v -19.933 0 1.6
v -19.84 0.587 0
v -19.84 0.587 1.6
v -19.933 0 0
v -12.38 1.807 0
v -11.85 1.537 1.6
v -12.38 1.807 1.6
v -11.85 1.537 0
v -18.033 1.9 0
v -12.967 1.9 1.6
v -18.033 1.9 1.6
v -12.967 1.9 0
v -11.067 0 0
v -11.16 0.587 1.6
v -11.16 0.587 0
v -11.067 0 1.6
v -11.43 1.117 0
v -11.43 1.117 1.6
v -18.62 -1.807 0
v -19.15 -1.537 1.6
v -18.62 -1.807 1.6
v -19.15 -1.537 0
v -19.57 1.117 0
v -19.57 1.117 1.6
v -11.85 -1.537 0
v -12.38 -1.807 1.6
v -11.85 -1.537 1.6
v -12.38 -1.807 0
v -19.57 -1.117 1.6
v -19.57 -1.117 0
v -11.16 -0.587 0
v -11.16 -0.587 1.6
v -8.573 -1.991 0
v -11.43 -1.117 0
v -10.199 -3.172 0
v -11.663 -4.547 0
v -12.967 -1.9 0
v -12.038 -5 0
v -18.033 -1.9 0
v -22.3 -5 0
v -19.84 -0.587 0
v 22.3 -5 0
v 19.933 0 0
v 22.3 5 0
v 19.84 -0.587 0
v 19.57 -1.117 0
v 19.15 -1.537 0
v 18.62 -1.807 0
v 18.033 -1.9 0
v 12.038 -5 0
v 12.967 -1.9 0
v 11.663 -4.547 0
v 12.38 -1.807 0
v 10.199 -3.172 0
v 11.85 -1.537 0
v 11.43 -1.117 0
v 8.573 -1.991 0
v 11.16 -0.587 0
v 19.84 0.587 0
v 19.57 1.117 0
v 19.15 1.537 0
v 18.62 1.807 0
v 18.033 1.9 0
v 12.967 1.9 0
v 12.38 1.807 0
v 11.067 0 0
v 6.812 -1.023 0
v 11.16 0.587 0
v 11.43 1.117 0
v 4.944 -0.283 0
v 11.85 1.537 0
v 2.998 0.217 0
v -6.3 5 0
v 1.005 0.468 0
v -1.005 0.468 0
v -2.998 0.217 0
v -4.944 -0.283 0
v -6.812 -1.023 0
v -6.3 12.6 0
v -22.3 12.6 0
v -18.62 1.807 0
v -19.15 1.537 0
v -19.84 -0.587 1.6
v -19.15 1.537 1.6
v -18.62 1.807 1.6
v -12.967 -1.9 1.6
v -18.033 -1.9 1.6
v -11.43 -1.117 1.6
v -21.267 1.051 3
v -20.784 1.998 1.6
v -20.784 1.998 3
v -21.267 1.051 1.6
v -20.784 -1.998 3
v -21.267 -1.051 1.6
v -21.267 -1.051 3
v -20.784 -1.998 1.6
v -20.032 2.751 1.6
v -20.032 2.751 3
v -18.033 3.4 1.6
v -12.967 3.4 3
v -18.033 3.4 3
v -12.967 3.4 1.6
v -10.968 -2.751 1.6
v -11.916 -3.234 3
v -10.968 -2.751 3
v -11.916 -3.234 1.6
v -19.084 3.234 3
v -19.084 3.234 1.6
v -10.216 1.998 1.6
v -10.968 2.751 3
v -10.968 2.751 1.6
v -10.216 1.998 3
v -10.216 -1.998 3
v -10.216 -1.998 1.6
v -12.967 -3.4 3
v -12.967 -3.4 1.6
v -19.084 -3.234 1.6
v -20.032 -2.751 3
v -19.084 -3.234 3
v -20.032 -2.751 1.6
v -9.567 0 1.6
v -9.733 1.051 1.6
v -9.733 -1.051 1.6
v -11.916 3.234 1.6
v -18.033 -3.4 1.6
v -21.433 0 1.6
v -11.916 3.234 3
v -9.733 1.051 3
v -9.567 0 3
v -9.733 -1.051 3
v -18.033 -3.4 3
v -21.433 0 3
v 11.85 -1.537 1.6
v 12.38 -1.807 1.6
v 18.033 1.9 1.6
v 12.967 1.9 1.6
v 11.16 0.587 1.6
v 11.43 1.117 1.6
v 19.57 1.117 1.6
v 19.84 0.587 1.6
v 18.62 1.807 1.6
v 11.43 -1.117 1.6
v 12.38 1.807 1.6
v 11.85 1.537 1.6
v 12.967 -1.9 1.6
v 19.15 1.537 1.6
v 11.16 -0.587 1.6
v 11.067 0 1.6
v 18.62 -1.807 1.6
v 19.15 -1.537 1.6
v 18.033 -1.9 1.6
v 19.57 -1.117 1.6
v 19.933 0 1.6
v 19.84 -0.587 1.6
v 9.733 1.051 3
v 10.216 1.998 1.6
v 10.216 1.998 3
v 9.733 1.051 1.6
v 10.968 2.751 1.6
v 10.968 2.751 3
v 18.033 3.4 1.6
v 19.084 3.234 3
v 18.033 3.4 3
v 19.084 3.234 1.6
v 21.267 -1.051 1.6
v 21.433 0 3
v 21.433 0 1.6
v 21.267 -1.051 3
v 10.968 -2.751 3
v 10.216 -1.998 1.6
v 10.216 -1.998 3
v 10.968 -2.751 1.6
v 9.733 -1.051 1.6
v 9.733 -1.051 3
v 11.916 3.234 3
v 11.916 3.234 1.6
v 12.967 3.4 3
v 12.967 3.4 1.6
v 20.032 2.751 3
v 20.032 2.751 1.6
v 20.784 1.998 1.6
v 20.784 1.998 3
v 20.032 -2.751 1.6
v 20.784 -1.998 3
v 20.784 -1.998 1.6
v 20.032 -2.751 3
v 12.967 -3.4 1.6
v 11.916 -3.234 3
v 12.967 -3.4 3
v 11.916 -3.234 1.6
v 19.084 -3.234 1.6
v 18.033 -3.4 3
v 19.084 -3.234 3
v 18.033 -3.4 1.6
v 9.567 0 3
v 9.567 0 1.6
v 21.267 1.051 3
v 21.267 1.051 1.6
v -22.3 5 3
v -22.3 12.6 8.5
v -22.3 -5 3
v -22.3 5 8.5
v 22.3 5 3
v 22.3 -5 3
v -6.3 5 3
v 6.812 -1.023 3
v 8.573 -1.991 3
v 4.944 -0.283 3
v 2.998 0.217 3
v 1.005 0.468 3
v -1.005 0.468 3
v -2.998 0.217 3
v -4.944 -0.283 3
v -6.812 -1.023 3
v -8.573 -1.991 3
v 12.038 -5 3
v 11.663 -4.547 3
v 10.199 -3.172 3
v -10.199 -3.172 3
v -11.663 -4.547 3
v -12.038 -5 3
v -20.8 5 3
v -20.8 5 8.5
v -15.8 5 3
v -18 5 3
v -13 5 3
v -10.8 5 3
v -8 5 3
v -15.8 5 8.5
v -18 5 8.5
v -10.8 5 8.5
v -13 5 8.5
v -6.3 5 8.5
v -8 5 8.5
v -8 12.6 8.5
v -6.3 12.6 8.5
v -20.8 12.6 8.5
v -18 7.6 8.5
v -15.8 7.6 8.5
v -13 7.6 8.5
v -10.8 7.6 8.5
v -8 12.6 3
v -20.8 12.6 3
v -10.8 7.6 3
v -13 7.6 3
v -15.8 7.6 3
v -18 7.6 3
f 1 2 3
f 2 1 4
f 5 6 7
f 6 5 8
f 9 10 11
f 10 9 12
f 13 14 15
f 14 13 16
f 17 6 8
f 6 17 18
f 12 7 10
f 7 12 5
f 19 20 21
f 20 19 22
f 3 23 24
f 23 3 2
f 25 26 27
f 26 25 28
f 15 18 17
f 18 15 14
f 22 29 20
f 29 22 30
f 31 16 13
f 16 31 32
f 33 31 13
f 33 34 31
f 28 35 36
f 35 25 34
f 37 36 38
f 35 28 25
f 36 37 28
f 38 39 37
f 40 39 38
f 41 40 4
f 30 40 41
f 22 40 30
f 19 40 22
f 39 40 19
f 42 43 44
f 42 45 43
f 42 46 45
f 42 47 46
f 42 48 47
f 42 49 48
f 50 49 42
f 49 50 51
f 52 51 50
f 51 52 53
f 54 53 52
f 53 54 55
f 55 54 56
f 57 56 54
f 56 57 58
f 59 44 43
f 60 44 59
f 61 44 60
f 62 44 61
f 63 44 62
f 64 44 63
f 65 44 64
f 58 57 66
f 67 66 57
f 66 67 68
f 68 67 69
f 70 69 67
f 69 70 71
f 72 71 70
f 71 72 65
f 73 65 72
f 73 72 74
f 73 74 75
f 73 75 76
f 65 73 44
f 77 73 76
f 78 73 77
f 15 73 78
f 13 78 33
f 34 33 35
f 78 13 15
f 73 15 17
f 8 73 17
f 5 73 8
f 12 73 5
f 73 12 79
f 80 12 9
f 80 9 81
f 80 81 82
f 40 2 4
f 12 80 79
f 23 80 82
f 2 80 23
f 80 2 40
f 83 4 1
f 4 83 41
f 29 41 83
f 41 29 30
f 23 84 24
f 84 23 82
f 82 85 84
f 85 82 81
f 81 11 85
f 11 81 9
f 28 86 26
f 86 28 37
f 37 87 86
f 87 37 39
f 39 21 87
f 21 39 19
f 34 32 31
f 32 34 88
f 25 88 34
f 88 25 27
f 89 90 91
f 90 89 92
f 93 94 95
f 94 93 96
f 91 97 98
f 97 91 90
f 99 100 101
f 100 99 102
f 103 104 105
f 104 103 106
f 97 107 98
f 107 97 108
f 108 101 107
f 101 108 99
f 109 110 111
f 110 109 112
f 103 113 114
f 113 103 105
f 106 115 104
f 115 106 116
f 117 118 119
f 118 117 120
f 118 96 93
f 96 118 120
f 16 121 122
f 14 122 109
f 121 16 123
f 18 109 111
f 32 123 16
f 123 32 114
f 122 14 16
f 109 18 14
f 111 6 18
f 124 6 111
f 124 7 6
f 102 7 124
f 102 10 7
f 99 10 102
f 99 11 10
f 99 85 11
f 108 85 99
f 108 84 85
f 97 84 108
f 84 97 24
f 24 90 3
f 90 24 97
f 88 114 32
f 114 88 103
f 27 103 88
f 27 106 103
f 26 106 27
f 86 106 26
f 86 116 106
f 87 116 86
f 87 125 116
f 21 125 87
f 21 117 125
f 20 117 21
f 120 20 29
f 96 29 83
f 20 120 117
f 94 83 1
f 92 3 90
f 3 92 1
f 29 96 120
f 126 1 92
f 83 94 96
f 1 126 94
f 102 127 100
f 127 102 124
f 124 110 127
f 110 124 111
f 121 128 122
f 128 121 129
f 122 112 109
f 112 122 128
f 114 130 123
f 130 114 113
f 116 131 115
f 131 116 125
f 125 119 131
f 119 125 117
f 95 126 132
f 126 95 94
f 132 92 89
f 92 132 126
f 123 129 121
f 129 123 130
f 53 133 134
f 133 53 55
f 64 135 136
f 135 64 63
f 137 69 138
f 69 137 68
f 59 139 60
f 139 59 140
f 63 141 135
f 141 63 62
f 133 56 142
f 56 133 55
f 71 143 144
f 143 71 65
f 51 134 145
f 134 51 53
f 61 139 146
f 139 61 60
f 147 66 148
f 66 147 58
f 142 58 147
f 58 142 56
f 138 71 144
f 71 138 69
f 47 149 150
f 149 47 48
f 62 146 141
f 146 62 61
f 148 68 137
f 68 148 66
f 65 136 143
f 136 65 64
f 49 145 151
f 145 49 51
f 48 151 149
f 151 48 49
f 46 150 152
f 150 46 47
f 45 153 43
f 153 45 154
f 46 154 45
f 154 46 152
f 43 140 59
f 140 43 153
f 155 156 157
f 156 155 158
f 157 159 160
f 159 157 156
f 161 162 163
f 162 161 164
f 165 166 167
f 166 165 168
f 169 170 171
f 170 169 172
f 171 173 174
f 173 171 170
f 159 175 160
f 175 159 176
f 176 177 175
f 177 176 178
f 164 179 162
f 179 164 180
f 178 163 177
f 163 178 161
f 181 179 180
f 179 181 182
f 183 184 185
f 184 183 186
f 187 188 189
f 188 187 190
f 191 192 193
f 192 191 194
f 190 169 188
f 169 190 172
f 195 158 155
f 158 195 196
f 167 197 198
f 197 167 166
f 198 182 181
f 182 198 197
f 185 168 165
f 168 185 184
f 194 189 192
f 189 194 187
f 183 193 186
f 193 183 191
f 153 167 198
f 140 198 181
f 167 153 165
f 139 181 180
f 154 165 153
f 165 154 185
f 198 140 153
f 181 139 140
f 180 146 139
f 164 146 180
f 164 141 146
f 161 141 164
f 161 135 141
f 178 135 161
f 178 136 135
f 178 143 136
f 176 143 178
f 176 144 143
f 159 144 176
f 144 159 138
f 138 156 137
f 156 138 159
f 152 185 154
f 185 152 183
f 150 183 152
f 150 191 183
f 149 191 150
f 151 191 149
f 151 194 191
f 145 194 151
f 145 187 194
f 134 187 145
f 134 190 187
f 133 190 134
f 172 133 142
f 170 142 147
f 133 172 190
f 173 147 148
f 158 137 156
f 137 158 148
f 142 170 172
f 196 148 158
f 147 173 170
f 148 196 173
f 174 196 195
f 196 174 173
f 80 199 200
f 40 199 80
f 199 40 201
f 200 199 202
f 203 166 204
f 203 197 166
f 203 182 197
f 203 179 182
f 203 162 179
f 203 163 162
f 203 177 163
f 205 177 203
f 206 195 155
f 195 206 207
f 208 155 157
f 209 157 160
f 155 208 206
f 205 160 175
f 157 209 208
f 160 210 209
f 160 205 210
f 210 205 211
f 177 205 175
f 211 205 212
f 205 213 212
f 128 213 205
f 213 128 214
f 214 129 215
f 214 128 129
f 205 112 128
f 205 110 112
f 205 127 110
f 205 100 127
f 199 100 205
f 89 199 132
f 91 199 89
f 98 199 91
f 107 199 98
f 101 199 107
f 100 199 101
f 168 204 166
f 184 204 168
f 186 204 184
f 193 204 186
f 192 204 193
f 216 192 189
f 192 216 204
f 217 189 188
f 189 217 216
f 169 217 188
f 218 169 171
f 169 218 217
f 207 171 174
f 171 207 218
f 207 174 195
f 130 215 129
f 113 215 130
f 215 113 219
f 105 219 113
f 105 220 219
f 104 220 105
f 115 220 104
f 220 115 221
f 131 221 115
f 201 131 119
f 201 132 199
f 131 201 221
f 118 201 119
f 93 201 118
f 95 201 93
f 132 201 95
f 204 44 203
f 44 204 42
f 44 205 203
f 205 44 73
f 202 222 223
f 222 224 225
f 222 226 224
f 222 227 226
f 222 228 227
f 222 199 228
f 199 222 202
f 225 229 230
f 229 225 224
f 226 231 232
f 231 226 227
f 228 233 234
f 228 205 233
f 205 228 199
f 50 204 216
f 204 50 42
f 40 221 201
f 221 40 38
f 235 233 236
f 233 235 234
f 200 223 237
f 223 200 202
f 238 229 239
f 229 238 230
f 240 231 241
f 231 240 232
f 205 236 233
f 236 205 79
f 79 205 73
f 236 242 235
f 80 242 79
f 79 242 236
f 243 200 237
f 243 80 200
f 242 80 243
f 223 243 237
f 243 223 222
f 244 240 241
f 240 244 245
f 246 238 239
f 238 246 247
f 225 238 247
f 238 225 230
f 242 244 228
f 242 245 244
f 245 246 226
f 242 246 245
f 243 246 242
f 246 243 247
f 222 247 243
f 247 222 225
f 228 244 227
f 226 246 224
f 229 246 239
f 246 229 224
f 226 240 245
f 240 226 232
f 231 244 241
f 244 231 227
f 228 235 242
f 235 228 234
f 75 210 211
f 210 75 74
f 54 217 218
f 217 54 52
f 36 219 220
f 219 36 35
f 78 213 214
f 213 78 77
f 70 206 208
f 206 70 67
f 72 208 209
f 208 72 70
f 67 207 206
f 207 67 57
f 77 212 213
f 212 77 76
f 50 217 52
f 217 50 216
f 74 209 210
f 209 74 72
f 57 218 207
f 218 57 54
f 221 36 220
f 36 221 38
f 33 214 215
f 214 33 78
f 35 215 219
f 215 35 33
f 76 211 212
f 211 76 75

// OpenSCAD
$fn=20;

TOR_DIAM            = 3+0.8;
TOR_CAB_DIAM        = 6+0.8;

MOTOR_CENTRO_DIAM   = 32;

SWITCH_LARGO        = 12.8;
SWITCH_ANCHO        = 5.7;
SWITCH_ALTO         = 6;
SWITCH_PINS_TOPE    = 2;

BASE_AGUJEROS_TOR   = 31;
BASE_LARGO          = BASE_AGUJEROS_TOR+TOR_DIAM*2+3*2;
BASE_ANCHO          = 10;
BASE_ESPESOR        = 3;
BASE_ESPESOR_TOR    = 1.6;

module YAxisSoporteEndstop()
{
    difference() {
        union() {
            translate([0, 0, BASE_ESPESOR/2]) cube([BASE_LARGO, BASE_ANCHO, BASE_ESPESOR], center=true);
            translate([-BASE_LARGO/2, BASE_ANCHO/2, 0]) cube([SWITCH_LARGO+BASE_ESPESOR_TOR*2, BASE_ESPESOR_TOR+SWITCH_ALTO, BASE_ESPESOR+SWITCH_ANCHO-0.2]);
        }
        translate([0, -BASE_AGUJEROS_TOR/2, 0]) # cylinder(h=BASE_ESPESOR, d=MOTOR_CENTRO_DIAM, $fn=50);
        for(i=[-1, 1]) {
            translate([BASE_AGUJEROS_TOR/2*i, 0, 0]) {
                # hull() 
                    for(i=[-1, 1])
                        translate([TOR_DIAM/1.5*i, 0, 0]) cylinder(h=BASE_ESPESOR, d=TOR_DIAM);
                # hull() 
                    for(i=[-1, 1])
                        translate([TOR_DIAM/1.5*i, 0, BASE_ESPESOR_TOR]) cylinder(h=BASE_ESPESOR_TOR, d=TOR_CAB_DIAM);
            }
        }
        translate([-(BASE_LARGO/2-SWITCH_LARGO/2-BASE_ESPESOR/2), SWITCH_ALTO+BASE_ESPESOR_TOR, SWITCH_ANCHO/2+BASE_ESPESOR]) rotate([-90,0,0]) # union() {
            translate([0,0,SWITCH_ALTO/2]) cube([SWITCH_LARGO, SWITCH_ANCHO, SWITCH_ALTO], center=true);
            for(i=[-1,0,1])
                translate([5*i, 0, -BASE_ESPESOR/2]) cube([2.8, SWITCH_ANCHO, BASE_ESPESOR], center=true);
        }
    }
}

YAxisSoporteEndstop();
